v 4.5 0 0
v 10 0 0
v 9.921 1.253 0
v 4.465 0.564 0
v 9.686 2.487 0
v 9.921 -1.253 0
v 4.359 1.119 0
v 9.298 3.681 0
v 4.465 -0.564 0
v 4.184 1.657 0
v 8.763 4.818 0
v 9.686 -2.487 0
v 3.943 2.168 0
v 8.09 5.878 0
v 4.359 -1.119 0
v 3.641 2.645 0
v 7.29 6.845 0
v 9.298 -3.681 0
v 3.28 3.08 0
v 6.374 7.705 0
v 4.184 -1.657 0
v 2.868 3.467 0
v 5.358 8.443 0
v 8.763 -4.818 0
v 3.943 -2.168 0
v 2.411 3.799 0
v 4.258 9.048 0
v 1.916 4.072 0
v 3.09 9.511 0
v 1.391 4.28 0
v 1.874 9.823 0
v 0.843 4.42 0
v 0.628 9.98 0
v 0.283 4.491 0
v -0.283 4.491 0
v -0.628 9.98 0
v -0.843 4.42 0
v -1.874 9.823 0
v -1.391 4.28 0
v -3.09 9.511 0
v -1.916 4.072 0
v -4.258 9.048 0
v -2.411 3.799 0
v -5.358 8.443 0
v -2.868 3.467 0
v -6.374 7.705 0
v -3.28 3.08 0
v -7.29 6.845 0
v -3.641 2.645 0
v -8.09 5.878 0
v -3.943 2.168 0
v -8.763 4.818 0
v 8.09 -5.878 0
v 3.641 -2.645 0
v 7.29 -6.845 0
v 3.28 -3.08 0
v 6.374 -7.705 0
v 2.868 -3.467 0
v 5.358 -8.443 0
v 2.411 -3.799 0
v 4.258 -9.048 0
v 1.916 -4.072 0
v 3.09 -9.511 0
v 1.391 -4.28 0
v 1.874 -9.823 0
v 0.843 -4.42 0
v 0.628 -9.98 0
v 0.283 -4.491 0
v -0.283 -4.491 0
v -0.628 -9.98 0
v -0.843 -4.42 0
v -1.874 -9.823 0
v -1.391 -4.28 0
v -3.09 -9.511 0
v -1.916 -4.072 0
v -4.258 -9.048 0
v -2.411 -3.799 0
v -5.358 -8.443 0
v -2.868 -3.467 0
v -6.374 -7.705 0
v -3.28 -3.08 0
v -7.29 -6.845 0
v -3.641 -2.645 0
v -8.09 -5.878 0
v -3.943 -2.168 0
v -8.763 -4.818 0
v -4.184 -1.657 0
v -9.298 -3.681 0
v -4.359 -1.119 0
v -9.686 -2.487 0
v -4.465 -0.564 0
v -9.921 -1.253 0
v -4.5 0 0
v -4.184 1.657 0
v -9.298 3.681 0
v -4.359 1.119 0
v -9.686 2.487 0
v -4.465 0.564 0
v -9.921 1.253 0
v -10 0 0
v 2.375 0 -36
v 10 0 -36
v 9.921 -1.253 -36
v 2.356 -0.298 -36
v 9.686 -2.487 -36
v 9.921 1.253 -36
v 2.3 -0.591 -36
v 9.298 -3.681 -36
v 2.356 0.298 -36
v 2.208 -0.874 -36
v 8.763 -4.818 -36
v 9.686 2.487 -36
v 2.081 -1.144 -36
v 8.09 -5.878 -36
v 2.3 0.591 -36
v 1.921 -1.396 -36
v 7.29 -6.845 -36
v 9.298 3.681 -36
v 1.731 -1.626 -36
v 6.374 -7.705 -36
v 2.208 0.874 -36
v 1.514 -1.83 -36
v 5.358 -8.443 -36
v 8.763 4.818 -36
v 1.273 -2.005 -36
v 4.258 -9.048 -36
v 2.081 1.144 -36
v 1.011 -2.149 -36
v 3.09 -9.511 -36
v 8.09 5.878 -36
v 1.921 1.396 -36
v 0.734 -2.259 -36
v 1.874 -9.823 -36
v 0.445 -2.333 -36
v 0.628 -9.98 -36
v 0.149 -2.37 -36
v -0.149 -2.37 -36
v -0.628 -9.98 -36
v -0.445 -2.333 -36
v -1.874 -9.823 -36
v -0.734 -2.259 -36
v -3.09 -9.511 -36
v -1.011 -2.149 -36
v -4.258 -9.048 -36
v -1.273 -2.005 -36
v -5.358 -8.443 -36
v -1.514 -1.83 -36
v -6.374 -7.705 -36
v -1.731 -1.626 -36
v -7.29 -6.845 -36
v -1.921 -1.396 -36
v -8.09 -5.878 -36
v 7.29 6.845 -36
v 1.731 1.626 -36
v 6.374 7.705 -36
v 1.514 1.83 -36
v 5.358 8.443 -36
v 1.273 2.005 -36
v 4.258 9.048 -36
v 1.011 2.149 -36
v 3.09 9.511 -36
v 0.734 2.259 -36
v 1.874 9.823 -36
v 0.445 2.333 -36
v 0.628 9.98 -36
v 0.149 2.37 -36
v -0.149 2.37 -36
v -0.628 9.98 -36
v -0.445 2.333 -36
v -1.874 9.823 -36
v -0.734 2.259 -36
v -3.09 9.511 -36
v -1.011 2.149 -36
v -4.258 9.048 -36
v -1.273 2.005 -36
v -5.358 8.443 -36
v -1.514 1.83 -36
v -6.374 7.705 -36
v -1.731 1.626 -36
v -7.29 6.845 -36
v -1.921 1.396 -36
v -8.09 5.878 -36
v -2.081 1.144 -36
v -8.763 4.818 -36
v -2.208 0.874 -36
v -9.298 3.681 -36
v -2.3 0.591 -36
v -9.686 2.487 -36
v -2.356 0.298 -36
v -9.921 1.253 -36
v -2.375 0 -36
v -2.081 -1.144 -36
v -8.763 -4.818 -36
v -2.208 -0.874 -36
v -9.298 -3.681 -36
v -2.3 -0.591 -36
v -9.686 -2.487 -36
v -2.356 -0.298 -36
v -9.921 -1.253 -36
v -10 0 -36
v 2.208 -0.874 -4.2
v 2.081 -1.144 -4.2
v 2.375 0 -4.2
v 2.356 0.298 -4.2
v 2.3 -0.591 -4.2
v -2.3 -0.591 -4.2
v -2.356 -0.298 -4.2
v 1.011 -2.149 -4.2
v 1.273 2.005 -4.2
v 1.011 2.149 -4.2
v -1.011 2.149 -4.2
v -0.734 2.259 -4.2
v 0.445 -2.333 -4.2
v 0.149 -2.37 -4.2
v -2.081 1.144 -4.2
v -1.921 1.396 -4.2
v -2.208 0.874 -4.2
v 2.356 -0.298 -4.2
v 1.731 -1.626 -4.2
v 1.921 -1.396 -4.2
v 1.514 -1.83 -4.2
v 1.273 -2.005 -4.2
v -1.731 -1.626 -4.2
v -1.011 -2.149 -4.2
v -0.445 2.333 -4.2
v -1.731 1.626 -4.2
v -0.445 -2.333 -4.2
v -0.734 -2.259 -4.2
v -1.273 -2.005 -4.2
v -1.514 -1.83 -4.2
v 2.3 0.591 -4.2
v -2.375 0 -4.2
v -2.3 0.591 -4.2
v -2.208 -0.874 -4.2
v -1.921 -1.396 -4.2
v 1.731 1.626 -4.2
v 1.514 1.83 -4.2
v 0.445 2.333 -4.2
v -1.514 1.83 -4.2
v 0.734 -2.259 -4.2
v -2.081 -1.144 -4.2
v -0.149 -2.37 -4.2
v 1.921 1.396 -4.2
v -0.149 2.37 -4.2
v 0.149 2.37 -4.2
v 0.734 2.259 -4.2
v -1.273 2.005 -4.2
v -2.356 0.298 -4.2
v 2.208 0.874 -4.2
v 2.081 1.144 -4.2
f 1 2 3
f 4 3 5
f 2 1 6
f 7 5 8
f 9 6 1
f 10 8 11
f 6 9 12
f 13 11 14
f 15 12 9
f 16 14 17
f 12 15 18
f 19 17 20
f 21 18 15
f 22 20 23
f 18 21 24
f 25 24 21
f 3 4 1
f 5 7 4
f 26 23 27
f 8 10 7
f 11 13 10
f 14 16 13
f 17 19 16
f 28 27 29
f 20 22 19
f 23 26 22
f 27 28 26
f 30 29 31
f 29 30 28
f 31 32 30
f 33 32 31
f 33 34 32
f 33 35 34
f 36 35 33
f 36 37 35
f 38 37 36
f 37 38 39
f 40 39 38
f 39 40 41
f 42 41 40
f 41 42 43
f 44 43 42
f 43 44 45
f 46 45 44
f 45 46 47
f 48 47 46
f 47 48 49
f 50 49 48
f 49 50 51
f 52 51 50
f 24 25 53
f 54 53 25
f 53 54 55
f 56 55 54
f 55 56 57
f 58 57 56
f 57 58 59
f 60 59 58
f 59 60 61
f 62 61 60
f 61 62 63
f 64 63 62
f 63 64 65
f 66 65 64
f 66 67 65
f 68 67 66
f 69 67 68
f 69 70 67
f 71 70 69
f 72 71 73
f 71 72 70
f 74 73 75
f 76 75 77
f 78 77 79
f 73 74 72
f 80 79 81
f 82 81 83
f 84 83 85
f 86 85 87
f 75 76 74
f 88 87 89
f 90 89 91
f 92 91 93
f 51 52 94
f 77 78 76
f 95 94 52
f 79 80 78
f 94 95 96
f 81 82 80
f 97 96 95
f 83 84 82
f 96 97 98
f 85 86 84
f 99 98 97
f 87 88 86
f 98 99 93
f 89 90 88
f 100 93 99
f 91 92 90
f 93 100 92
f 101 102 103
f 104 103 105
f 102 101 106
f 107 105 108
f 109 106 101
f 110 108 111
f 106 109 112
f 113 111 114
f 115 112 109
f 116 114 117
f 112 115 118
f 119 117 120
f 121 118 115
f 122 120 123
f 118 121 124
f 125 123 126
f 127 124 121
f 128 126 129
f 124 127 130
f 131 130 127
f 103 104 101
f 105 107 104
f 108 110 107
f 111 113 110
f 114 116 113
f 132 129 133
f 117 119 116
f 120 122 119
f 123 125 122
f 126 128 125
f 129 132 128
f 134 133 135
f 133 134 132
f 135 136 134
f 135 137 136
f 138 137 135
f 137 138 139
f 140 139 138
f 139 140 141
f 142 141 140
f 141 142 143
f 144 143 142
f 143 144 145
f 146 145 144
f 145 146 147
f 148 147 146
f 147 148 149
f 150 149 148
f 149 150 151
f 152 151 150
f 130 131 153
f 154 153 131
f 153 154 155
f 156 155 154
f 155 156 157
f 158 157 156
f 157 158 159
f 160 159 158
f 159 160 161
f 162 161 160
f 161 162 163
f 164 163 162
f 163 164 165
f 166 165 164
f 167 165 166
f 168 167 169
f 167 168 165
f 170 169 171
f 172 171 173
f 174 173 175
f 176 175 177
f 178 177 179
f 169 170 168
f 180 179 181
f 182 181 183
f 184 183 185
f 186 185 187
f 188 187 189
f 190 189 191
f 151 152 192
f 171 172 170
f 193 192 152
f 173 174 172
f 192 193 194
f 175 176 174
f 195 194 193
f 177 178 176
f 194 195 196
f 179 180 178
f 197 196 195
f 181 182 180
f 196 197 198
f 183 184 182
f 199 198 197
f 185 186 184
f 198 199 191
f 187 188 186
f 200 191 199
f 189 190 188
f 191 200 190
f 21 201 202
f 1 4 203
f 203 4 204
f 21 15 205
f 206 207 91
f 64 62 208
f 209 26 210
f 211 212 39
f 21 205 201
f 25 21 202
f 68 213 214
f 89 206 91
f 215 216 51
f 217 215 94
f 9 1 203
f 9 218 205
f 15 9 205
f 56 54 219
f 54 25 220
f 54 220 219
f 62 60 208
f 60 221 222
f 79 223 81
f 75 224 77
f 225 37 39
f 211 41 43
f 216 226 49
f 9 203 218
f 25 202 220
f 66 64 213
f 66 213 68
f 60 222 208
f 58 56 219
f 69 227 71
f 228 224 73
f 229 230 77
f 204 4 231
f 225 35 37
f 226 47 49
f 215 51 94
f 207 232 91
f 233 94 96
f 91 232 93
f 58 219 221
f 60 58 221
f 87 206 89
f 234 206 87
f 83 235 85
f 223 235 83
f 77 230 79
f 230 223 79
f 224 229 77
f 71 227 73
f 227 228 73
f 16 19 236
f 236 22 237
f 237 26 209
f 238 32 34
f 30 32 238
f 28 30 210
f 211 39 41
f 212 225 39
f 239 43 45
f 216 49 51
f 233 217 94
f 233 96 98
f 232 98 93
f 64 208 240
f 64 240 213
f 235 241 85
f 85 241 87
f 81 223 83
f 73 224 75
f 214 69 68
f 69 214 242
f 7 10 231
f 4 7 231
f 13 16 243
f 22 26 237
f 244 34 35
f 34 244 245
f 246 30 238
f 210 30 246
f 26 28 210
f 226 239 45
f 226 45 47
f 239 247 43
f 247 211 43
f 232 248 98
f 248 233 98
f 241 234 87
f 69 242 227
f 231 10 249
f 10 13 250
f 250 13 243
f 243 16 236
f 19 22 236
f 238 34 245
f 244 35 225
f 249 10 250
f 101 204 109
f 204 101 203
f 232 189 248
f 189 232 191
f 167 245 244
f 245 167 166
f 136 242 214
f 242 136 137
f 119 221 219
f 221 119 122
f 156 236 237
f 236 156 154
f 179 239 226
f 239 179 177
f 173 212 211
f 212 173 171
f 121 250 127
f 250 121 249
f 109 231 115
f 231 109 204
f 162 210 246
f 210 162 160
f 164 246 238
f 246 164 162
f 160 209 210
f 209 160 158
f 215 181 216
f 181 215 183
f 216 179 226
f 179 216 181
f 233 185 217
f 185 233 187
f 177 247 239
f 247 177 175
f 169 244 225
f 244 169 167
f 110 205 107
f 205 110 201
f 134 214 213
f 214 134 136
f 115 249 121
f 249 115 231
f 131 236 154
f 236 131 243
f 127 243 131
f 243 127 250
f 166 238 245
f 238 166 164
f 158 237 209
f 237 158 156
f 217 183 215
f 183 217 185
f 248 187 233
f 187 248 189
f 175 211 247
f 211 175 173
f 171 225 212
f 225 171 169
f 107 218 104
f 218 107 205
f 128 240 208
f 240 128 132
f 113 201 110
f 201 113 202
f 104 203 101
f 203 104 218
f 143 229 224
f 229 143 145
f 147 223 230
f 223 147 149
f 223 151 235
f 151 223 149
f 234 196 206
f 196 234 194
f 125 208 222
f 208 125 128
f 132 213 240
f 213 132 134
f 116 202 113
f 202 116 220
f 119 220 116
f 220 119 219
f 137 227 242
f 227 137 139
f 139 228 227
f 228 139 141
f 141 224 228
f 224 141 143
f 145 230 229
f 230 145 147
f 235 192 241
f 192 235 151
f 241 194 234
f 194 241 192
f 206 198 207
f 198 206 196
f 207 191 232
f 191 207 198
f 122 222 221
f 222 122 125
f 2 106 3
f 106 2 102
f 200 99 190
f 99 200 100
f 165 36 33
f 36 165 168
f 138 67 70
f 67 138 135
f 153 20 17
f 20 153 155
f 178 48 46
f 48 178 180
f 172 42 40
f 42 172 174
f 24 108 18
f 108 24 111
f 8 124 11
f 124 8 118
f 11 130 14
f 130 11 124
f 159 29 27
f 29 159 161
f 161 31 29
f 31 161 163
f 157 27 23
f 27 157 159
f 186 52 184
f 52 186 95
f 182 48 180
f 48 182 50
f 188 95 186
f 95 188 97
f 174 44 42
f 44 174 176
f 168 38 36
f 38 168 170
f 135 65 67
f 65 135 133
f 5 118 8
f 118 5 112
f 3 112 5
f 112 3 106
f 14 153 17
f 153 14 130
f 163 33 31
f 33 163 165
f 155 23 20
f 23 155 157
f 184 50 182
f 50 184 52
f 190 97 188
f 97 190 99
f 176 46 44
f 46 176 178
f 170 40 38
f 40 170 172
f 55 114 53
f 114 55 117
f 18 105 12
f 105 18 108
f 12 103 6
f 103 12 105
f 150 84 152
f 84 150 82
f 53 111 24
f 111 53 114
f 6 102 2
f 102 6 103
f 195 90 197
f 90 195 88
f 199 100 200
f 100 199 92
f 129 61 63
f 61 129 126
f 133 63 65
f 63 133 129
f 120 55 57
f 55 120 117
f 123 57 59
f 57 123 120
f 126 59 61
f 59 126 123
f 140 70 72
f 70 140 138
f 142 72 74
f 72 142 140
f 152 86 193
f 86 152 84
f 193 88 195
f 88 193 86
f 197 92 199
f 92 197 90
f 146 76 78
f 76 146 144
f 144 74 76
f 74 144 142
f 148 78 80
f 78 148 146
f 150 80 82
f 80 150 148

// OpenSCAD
$fn = 50;


difference() {
	union() {
		translate(v = [0, 0, -36.0000000000]) {
			cylinder(h = 36, r = 10.0000000000);
		}
		cylinder(h = 0, r = 20.0000000000);
	}
	union() {
		translate(v = [0, 0, 0]) {
			rotate(a = [0, 0, 0]) {
				difference() {
					union() {
						#translate(v = [0, 0, -36.0000000000]) {
							cylinder(h = 36, r = 2.2500000000);
						}
						#translate(v = [0, 0, -4.2000000000]) {
							cylinder(h = 4.2000000000, r = 10.0000000000, r1 = 2.3750000000, r2 = 4.5000000000);
						}
						#translate(v = [0, 0, -36.0000000000]) {
							cylinder(h = 36, r = 2.3750000000);
						}
						#translate(v = [0, 0, -36.0000000000]) {
							cylinder(h = 36, r = 2.2500000000);
						}
					}
					union();
				}
			}
		}
	}
}
